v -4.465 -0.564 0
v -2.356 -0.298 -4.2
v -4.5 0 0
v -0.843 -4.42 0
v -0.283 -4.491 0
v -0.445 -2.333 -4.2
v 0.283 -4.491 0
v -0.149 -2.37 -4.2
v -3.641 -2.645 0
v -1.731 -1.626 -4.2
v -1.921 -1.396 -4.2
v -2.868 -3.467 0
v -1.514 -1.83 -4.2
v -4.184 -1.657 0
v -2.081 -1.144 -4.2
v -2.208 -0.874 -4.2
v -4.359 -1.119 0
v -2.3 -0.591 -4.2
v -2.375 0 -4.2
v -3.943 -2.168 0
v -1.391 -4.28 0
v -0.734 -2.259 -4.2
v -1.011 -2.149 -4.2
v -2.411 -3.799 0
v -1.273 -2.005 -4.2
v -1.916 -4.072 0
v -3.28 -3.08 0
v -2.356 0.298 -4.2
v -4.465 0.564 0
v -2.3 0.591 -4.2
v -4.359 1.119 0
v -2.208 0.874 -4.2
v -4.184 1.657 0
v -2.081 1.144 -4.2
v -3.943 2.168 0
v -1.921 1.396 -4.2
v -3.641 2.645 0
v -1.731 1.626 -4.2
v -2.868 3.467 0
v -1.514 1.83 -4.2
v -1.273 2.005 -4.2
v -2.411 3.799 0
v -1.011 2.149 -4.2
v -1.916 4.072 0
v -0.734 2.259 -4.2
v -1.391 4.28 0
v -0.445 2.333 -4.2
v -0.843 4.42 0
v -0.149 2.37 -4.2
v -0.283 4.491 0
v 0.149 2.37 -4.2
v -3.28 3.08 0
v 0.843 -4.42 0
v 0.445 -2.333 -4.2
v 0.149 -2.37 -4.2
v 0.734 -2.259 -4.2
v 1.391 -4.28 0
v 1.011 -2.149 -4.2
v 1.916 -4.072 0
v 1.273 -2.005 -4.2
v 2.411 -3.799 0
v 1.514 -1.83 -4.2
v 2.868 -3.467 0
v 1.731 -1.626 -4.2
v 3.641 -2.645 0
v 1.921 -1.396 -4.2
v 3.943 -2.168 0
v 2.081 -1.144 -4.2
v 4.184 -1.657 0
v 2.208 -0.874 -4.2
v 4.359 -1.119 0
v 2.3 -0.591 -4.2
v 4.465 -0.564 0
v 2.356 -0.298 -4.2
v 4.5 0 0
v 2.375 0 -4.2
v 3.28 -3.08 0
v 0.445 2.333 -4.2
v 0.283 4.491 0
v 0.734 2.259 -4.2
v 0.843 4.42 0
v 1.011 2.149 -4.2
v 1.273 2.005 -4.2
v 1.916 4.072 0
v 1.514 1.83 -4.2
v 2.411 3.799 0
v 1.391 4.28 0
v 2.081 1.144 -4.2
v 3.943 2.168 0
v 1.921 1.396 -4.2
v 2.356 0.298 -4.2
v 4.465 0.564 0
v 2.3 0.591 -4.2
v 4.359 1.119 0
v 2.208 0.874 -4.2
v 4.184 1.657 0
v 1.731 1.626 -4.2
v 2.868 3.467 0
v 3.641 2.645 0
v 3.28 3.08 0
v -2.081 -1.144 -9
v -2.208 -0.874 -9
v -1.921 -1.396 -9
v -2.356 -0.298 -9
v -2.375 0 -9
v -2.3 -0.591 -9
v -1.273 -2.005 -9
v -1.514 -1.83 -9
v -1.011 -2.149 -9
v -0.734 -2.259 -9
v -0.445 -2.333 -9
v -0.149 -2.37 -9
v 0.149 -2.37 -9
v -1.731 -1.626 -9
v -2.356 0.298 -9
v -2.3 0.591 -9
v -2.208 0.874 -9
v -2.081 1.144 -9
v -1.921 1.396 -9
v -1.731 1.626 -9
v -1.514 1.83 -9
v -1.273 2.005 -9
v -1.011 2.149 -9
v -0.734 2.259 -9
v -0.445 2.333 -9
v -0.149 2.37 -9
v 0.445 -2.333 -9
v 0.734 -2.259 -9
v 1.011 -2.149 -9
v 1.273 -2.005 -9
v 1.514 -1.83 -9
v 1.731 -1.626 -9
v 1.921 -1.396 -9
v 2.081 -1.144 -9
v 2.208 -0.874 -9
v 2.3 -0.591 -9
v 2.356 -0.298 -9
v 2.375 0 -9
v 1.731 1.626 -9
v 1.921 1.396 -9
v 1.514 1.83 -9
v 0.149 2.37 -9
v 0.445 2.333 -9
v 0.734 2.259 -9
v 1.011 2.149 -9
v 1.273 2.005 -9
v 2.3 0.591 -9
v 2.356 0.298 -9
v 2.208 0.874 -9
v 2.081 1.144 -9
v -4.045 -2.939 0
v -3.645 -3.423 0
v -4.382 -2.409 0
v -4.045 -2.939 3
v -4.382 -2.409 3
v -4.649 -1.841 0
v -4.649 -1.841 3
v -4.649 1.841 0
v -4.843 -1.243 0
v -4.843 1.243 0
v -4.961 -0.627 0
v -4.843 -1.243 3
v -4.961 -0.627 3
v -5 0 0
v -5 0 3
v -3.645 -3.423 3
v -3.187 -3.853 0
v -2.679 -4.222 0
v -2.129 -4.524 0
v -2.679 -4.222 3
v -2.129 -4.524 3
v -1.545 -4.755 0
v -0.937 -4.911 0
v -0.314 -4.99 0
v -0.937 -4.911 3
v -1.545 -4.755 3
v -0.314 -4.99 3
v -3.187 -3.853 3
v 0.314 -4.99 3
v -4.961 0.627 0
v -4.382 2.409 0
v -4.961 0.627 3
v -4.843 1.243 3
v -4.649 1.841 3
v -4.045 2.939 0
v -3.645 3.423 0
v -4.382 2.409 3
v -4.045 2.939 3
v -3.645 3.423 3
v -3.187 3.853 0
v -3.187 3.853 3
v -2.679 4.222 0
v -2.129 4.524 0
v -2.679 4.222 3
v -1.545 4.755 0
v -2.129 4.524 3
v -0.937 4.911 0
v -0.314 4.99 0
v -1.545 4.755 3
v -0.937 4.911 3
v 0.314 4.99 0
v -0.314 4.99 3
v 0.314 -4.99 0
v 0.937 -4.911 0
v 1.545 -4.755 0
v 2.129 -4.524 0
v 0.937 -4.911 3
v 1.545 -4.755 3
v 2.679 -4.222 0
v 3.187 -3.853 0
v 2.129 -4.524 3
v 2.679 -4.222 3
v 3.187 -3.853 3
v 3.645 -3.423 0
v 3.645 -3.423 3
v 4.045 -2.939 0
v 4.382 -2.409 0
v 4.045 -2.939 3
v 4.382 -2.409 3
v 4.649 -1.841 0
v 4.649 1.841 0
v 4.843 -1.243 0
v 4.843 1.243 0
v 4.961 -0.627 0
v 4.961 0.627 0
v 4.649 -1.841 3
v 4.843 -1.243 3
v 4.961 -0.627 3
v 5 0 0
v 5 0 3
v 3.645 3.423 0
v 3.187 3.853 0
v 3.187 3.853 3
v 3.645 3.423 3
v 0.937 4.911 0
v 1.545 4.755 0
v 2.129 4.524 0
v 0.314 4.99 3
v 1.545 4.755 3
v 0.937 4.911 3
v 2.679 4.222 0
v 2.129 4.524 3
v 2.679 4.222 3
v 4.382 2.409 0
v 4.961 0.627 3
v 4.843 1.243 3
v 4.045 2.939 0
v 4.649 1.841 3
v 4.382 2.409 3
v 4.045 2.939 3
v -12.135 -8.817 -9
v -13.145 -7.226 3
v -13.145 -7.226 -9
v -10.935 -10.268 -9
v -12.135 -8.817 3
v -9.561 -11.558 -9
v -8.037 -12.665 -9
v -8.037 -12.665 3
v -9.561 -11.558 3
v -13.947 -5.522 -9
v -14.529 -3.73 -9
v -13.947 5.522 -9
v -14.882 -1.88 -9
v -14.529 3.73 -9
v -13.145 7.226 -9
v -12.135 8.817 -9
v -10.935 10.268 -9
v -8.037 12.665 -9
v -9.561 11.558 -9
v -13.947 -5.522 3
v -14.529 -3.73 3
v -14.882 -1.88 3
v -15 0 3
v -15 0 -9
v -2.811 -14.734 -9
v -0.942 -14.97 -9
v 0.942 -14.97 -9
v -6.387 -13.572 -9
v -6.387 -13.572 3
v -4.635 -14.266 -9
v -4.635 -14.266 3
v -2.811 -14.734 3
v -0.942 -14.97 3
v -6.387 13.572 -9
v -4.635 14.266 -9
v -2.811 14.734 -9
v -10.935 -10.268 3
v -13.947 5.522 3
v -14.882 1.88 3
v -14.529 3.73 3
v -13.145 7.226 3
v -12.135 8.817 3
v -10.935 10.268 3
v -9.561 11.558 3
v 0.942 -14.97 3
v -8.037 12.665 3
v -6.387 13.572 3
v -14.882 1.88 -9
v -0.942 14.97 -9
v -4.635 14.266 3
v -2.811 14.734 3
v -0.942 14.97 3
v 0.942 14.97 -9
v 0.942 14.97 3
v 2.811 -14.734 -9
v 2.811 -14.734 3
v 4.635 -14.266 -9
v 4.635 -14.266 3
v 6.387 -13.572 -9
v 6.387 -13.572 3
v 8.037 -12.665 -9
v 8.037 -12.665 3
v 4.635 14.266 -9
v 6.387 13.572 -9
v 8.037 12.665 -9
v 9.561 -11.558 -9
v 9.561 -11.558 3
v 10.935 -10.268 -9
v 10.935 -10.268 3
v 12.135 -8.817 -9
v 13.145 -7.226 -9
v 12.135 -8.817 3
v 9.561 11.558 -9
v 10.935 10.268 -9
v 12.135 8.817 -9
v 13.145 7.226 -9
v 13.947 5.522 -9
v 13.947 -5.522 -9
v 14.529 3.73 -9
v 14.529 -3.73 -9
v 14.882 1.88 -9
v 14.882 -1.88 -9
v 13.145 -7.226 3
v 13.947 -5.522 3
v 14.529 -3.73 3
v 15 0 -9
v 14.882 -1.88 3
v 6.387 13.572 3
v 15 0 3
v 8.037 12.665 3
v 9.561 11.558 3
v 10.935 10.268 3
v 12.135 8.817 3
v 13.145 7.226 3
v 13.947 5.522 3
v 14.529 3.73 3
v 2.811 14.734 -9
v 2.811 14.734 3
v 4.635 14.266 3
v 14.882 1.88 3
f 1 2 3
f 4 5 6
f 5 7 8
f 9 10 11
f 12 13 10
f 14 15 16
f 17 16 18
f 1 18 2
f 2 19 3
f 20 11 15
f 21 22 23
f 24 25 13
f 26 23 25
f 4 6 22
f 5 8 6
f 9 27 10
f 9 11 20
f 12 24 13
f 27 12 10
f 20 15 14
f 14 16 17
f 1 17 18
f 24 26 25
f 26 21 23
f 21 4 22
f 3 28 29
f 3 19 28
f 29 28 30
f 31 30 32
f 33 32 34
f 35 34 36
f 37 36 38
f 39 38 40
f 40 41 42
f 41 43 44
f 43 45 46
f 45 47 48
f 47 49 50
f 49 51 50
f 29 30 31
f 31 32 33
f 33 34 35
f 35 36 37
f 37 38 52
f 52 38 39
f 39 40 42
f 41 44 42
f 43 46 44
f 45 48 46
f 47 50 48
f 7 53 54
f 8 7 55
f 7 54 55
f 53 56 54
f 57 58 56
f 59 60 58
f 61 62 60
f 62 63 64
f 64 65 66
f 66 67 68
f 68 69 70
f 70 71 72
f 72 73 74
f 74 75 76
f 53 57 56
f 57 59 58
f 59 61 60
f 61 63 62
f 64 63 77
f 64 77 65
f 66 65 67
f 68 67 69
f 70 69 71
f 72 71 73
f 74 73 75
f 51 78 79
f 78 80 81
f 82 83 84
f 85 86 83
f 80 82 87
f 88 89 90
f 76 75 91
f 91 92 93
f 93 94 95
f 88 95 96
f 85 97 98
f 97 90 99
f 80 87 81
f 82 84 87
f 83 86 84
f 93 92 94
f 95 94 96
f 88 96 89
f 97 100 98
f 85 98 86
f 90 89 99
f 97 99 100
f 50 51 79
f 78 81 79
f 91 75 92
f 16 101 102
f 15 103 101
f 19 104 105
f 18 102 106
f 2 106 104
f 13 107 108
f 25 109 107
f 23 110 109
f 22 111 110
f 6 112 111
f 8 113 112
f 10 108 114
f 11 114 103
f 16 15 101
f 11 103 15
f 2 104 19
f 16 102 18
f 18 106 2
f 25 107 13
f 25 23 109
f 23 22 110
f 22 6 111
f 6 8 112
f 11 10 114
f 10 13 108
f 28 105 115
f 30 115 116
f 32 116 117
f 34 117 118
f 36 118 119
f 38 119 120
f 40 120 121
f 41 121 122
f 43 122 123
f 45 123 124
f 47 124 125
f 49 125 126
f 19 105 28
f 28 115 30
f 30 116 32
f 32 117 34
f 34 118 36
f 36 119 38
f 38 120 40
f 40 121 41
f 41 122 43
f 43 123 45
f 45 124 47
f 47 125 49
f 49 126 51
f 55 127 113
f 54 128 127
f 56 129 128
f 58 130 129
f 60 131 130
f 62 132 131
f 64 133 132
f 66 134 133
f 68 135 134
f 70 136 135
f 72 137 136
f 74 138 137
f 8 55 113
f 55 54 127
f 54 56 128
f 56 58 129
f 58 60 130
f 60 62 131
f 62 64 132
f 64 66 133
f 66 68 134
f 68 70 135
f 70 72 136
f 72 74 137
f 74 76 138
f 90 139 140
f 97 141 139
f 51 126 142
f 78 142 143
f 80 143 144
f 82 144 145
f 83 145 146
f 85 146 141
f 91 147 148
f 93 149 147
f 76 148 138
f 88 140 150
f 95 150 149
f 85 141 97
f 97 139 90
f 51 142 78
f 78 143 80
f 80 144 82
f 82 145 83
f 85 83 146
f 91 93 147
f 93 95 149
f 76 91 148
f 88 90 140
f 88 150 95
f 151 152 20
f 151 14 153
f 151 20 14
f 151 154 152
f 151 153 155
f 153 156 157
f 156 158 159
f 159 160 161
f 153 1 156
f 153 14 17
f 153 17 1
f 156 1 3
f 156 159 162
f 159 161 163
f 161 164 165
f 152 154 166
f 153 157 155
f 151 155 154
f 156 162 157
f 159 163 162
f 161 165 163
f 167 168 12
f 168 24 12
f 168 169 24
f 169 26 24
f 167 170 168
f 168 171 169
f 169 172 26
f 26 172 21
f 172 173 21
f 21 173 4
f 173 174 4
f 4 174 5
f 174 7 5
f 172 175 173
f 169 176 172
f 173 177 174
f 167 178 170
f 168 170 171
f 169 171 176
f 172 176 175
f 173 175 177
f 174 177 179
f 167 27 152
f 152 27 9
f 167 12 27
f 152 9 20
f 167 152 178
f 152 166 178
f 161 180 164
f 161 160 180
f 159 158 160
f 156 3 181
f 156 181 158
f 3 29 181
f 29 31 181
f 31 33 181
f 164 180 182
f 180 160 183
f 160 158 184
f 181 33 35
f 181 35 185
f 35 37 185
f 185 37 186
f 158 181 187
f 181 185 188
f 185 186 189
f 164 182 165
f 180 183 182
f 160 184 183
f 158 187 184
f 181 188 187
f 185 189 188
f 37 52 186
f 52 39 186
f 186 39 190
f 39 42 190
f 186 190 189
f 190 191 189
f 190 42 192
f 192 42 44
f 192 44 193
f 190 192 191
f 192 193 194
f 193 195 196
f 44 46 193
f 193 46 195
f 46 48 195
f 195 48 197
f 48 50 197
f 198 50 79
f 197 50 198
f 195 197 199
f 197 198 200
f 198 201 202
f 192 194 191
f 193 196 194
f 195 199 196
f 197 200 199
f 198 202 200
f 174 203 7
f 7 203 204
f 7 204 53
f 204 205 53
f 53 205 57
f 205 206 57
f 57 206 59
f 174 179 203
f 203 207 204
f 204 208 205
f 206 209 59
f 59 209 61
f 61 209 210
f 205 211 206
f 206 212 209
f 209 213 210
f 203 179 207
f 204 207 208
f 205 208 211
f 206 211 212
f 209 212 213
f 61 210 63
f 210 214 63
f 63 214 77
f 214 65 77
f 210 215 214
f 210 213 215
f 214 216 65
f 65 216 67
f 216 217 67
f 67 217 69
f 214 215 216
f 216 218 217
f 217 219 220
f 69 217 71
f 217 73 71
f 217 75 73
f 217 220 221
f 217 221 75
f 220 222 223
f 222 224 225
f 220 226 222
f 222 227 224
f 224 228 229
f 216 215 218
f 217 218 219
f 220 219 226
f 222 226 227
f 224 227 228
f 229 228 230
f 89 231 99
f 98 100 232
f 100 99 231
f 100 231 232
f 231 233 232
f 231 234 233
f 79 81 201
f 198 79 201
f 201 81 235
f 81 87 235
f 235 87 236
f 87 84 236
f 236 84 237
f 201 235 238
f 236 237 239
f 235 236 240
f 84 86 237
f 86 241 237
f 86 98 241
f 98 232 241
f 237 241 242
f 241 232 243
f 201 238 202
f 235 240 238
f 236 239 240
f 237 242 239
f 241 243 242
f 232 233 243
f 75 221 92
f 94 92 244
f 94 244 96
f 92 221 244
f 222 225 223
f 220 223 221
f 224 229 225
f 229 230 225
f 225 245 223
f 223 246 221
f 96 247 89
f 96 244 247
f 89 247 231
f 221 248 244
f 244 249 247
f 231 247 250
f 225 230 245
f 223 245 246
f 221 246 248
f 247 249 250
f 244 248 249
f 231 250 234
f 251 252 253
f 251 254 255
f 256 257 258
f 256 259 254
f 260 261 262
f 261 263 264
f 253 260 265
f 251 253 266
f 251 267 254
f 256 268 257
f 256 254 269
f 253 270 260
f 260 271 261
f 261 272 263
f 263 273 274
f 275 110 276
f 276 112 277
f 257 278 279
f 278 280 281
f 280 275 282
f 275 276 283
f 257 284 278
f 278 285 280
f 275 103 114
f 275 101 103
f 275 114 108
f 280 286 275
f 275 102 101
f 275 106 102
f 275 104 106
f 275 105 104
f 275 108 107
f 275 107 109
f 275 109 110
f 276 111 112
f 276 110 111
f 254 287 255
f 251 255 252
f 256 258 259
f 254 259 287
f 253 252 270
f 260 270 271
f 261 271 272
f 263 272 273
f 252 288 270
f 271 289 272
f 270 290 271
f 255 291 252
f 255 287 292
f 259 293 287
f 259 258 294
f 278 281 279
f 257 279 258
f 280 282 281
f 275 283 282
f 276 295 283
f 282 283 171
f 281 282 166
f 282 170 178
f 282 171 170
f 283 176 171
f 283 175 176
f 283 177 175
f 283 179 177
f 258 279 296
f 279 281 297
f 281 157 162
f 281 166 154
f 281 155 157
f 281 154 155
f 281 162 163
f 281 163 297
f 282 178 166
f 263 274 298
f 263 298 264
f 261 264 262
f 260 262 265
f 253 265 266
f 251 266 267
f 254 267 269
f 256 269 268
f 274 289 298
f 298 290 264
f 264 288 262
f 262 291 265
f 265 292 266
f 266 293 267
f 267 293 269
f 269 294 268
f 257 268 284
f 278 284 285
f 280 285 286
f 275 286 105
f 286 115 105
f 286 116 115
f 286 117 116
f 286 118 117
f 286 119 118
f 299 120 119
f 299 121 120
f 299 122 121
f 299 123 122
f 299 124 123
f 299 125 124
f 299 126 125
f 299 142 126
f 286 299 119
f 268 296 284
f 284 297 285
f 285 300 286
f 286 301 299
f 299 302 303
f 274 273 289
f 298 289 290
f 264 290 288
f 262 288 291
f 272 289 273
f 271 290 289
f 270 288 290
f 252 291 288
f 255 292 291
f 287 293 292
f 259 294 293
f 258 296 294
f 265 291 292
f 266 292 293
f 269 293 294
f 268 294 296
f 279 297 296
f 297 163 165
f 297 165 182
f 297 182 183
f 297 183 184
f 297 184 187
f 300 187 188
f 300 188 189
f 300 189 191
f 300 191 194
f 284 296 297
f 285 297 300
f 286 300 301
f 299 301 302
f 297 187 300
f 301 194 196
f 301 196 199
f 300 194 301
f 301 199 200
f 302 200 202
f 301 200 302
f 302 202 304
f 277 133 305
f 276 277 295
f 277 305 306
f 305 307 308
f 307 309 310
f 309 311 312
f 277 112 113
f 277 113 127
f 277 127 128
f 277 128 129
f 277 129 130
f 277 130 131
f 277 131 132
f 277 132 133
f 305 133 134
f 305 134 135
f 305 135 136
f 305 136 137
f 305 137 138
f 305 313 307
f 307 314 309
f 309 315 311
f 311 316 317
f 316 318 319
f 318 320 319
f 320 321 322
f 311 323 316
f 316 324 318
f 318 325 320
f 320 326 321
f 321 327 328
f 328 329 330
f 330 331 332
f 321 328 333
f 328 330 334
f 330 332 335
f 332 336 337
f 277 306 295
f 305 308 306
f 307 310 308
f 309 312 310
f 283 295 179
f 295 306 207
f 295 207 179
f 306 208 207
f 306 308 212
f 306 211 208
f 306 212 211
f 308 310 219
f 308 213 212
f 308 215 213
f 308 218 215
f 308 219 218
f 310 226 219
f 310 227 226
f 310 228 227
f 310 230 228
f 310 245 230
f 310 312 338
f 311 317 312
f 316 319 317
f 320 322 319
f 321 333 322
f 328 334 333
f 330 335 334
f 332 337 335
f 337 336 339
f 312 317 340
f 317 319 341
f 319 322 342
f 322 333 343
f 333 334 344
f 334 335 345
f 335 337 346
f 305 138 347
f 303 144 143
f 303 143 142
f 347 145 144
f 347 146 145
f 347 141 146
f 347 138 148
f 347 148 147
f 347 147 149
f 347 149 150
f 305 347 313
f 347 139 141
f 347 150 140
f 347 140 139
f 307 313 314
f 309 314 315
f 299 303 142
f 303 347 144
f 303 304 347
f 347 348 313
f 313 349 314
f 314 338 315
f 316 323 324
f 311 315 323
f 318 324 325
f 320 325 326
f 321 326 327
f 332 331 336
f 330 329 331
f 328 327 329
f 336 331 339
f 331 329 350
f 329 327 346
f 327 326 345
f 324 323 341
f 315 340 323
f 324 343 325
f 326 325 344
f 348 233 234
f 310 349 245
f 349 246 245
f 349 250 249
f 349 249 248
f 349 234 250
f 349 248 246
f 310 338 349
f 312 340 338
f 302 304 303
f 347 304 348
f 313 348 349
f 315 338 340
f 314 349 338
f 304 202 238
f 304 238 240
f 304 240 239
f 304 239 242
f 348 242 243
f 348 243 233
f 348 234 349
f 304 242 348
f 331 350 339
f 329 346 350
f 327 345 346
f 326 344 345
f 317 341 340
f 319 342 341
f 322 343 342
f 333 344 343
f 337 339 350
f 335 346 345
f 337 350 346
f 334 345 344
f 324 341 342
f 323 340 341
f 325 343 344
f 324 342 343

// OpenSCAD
$fn = 50;

difference() {
	union() {
		translate(v = [0, 0, -9.0]) {
			cylinder(h = 12, r = 15.0);
		}
	}
	union() {
		translate(v = [0, 0, 0]) {
			rotate(a = [0, 0, 0]) {
				difference() {
					union() {
						translate(v = [0, 0, -12.0]) {
							cylinder(h = 12, r = 2.25);
						}
						translate(v = [0, 0, -4.2]) {
							cylinder(h = 4.2, r1 = 2.375, r2 = 4.5);
						}
						translate(v = [0, 0, -12.0]) {
							cylinder(h = 12, r = 2.375);
						}
						translate(v = [0, 0, -12.0]) {
							cylinder(h = 12, r = 2.25);
						}
					}
					union();
				}
			}
		}
		#cylinder(h = 3, r = 5.0);
	}
}
